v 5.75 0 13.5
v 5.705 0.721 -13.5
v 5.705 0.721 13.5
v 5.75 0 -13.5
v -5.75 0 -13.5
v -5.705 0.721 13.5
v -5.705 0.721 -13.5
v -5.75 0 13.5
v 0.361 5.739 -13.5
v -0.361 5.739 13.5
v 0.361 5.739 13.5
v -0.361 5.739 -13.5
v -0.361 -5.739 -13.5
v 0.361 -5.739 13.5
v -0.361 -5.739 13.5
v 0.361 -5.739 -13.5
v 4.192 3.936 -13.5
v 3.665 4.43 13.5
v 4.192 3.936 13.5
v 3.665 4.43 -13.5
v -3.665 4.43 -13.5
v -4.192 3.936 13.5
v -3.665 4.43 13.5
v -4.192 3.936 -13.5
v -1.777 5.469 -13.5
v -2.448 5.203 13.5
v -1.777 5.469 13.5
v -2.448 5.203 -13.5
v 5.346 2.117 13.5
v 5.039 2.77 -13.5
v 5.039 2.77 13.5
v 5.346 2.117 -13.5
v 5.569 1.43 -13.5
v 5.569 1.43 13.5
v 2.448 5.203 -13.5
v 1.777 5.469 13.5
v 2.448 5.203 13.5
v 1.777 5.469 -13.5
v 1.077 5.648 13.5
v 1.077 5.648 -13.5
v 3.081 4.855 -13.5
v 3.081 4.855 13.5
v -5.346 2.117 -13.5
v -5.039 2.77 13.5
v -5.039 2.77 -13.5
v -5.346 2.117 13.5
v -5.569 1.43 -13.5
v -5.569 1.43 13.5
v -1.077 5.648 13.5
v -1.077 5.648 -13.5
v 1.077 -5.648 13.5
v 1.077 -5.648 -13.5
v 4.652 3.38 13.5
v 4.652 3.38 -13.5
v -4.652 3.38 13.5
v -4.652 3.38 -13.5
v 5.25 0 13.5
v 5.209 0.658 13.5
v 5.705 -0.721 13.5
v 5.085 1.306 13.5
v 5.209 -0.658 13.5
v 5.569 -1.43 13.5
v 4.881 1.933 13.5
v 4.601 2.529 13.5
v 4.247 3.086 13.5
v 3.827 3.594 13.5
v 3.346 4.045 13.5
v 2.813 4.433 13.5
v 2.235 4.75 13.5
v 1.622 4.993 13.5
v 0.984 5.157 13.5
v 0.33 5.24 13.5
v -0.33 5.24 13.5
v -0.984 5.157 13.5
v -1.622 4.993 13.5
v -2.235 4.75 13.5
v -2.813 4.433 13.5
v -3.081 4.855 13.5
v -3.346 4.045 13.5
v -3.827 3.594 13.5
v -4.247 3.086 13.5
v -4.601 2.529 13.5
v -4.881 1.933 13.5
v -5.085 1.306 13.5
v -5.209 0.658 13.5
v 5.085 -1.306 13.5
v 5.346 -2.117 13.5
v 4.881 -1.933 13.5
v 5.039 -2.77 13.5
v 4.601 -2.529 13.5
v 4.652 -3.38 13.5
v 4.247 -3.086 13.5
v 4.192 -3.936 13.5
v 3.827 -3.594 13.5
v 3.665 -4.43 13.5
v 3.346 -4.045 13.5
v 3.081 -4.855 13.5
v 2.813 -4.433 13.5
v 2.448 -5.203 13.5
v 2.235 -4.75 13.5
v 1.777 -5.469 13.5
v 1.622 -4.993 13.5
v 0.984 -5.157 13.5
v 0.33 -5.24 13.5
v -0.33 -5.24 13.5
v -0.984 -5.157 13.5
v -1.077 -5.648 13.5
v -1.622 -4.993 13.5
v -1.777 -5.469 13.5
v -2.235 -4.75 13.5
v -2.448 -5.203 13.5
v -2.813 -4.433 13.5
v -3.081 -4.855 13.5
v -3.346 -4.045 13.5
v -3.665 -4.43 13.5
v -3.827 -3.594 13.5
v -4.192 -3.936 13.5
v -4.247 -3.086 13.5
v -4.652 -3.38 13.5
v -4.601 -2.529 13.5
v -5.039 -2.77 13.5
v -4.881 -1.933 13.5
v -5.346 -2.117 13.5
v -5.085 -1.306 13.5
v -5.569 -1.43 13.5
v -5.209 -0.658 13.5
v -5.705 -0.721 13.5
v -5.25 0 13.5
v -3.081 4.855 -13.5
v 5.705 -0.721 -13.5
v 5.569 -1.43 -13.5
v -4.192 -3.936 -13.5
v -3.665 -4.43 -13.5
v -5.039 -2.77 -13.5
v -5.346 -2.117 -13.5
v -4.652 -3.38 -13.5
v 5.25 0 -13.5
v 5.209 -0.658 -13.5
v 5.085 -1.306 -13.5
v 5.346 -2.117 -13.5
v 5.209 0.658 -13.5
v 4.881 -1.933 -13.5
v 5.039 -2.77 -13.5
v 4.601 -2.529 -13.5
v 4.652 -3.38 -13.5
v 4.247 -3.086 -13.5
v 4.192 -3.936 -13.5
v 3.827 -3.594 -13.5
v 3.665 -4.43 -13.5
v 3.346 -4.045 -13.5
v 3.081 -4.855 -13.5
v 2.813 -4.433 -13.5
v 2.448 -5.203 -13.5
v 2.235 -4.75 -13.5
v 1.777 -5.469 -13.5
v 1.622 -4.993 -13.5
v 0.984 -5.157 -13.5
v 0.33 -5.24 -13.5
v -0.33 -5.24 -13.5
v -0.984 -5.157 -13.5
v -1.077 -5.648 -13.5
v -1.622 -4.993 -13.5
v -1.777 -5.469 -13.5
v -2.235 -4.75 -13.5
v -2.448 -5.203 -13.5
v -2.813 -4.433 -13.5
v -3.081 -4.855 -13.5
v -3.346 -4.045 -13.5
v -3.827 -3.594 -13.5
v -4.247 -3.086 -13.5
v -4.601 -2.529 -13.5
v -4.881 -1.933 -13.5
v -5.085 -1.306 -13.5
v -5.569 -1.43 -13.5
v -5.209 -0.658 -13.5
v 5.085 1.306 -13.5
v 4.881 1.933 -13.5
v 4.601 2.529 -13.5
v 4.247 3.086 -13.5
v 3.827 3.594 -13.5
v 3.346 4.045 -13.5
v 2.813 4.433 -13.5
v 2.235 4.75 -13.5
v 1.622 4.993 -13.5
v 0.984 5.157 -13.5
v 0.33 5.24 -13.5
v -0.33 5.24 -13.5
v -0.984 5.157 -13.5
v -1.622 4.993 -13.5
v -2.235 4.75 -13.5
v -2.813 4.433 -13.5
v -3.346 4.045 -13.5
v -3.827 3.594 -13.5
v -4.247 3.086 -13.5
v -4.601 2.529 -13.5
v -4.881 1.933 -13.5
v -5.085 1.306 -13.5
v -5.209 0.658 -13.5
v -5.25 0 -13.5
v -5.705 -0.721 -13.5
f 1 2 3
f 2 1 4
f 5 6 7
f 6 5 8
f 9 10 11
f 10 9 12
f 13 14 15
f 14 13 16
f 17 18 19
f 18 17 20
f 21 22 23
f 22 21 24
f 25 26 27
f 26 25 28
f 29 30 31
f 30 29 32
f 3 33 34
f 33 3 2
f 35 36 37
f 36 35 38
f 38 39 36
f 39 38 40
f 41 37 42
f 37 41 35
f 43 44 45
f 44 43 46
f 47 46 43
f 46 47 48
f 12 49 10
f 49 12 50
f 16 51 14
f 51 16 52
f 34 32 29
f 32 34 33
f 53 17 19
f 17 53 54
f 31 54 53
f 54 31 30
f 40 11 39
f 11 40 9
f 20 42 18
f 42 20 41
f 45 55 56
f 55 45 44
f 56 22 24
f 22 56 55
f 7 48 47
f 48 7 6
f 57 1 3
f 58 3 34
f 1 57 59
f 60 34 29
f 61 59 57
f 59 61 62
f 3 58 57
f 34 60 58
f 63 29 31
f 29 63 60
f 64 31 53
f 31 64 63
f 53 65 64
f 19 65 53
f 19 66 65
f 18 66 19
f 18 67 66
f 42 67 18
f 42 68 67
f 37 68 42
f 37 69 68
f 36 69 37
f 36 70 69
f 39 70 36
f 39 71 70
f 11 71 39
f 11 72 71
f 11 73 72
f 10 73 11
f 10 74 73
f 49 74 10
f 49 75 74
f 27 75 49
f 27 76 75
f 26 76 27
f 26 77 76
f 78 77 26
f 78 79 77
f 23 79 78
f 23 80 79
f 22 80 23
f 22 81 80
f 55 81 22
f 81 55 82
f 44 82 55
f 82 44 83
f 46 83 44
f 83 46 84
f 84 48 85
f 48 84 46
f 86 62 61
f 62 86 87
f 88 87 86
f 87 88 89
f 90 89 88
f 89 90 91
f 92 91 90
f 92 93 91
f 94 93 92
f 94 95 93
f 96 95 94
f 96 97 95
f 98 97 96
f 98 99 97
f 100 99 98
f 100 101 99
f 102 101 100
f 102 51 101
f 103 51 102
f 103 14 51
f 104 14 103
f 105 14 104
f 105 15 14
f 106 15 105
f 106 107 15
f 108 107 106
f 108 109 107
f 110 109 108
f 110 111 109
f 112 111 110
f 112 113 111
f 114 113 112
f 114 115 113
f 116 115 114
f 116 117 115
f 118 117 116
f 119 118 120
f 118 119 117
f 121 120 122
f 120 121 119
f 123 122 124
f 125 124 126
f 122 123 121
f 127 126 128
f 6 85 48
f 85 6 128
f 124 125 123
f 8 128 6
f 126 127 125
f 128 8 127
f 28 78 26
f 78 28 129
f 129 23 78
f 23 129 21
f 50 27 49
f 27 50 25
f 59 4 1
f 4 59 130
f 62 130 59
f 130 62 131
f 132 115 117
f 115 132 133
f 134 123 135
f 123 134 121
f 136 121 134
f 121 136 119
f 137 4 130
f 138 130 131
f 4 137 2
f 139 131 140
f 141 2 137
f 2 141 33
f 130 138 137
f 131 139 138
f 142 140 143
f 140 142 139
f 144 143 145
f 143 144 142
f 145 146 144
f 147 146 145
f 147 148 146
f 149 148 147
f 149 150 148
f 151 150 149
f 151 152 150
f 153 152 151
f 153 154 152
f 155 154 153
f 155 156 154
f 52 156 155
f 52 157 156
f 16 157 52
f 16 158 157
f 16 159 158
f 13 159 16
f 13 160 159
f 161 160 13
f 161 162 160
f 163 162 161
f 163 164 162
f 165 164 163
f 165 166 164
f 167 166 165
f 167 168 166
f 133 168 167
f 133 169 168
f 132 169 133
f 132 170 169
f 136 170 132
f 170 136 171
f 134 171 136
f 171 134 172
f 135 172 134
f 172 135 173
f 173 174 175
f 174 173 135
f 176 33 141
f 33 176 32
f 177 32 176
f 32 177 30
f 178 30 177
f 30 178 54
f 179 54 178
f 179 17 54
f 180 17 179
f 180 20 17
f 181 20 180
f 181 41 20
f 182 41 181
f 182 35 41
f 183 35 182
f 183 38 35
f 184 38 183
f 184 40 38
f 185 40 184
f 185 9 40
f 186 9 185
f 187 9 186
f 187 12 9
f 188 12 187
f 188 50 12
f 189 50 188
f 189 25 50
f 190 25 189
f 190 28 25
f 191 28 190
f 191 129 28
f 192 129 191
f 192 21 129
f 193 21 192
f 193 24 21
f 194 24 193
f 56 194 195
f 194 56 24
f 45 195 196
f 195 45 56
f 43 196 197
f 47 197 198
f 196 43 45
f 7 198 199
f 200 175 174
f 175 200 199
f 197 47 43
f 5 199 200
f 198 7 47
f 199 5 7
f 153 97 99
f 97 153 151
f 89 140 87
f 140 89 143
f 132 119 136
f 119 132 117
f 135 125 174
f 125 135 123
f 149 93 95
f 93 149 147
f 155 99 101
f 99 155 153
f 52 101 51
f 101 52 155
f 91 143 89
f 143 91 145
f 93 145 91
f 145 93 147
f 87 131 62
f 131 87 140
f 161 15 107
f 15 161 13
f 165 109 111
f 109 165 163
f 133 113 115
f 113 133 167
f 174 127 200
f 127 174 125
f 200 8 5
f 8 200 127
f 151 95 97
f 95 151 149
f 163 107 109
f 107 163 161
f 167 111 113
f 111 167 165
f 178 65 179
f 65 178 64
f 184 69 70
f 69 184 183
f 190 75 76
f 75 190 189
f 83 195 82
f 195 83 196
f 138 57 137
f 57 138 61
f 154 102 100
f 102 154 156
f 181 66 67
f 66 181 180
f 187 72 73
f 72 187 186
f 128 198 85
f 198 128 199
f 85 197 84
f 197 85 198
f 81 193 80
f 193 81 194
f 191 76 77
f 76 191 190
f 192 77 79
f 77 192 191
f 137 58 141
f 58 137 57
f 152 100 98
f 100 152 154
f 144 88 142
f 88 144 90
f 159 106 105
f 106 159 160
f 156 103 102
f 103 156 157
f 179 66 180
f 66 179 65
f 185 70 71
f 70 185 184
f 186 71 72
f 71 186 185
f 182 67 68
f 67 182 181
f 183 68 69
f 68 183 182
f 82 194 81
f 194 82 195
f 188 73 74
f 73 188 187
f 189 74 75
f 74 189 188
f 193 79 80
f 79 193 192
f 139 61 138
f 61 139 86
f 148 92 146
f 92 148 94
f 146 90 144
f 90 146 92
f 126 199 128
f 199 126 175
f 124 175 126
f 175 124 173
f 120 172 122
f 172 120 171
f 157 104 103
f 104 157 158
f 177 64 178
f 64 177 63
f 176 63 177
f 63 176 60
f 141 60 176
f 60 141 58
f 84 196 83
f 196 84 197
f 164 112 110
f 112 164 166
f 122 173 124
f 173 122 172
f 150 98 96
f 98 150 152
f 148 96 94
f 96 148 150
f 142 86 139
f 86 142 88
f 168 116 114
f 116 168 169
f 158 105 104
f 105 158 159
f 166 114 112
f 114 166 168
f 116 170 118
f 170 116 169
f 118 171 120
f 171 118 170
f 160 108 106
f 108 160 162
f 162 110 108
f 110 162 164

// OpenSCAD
$fn = 50;


difference() {
	union() {
		translate(v = [0, 0, -13.5000000000]) {
			cylinder(h = 27, r = 5.7500000000);
		}
	}
	union() {
		translate(v = [0, 0, -100.0000000000]) {
			cylinder(h = 200, r = 5.2500000000);
		}
	}
}
